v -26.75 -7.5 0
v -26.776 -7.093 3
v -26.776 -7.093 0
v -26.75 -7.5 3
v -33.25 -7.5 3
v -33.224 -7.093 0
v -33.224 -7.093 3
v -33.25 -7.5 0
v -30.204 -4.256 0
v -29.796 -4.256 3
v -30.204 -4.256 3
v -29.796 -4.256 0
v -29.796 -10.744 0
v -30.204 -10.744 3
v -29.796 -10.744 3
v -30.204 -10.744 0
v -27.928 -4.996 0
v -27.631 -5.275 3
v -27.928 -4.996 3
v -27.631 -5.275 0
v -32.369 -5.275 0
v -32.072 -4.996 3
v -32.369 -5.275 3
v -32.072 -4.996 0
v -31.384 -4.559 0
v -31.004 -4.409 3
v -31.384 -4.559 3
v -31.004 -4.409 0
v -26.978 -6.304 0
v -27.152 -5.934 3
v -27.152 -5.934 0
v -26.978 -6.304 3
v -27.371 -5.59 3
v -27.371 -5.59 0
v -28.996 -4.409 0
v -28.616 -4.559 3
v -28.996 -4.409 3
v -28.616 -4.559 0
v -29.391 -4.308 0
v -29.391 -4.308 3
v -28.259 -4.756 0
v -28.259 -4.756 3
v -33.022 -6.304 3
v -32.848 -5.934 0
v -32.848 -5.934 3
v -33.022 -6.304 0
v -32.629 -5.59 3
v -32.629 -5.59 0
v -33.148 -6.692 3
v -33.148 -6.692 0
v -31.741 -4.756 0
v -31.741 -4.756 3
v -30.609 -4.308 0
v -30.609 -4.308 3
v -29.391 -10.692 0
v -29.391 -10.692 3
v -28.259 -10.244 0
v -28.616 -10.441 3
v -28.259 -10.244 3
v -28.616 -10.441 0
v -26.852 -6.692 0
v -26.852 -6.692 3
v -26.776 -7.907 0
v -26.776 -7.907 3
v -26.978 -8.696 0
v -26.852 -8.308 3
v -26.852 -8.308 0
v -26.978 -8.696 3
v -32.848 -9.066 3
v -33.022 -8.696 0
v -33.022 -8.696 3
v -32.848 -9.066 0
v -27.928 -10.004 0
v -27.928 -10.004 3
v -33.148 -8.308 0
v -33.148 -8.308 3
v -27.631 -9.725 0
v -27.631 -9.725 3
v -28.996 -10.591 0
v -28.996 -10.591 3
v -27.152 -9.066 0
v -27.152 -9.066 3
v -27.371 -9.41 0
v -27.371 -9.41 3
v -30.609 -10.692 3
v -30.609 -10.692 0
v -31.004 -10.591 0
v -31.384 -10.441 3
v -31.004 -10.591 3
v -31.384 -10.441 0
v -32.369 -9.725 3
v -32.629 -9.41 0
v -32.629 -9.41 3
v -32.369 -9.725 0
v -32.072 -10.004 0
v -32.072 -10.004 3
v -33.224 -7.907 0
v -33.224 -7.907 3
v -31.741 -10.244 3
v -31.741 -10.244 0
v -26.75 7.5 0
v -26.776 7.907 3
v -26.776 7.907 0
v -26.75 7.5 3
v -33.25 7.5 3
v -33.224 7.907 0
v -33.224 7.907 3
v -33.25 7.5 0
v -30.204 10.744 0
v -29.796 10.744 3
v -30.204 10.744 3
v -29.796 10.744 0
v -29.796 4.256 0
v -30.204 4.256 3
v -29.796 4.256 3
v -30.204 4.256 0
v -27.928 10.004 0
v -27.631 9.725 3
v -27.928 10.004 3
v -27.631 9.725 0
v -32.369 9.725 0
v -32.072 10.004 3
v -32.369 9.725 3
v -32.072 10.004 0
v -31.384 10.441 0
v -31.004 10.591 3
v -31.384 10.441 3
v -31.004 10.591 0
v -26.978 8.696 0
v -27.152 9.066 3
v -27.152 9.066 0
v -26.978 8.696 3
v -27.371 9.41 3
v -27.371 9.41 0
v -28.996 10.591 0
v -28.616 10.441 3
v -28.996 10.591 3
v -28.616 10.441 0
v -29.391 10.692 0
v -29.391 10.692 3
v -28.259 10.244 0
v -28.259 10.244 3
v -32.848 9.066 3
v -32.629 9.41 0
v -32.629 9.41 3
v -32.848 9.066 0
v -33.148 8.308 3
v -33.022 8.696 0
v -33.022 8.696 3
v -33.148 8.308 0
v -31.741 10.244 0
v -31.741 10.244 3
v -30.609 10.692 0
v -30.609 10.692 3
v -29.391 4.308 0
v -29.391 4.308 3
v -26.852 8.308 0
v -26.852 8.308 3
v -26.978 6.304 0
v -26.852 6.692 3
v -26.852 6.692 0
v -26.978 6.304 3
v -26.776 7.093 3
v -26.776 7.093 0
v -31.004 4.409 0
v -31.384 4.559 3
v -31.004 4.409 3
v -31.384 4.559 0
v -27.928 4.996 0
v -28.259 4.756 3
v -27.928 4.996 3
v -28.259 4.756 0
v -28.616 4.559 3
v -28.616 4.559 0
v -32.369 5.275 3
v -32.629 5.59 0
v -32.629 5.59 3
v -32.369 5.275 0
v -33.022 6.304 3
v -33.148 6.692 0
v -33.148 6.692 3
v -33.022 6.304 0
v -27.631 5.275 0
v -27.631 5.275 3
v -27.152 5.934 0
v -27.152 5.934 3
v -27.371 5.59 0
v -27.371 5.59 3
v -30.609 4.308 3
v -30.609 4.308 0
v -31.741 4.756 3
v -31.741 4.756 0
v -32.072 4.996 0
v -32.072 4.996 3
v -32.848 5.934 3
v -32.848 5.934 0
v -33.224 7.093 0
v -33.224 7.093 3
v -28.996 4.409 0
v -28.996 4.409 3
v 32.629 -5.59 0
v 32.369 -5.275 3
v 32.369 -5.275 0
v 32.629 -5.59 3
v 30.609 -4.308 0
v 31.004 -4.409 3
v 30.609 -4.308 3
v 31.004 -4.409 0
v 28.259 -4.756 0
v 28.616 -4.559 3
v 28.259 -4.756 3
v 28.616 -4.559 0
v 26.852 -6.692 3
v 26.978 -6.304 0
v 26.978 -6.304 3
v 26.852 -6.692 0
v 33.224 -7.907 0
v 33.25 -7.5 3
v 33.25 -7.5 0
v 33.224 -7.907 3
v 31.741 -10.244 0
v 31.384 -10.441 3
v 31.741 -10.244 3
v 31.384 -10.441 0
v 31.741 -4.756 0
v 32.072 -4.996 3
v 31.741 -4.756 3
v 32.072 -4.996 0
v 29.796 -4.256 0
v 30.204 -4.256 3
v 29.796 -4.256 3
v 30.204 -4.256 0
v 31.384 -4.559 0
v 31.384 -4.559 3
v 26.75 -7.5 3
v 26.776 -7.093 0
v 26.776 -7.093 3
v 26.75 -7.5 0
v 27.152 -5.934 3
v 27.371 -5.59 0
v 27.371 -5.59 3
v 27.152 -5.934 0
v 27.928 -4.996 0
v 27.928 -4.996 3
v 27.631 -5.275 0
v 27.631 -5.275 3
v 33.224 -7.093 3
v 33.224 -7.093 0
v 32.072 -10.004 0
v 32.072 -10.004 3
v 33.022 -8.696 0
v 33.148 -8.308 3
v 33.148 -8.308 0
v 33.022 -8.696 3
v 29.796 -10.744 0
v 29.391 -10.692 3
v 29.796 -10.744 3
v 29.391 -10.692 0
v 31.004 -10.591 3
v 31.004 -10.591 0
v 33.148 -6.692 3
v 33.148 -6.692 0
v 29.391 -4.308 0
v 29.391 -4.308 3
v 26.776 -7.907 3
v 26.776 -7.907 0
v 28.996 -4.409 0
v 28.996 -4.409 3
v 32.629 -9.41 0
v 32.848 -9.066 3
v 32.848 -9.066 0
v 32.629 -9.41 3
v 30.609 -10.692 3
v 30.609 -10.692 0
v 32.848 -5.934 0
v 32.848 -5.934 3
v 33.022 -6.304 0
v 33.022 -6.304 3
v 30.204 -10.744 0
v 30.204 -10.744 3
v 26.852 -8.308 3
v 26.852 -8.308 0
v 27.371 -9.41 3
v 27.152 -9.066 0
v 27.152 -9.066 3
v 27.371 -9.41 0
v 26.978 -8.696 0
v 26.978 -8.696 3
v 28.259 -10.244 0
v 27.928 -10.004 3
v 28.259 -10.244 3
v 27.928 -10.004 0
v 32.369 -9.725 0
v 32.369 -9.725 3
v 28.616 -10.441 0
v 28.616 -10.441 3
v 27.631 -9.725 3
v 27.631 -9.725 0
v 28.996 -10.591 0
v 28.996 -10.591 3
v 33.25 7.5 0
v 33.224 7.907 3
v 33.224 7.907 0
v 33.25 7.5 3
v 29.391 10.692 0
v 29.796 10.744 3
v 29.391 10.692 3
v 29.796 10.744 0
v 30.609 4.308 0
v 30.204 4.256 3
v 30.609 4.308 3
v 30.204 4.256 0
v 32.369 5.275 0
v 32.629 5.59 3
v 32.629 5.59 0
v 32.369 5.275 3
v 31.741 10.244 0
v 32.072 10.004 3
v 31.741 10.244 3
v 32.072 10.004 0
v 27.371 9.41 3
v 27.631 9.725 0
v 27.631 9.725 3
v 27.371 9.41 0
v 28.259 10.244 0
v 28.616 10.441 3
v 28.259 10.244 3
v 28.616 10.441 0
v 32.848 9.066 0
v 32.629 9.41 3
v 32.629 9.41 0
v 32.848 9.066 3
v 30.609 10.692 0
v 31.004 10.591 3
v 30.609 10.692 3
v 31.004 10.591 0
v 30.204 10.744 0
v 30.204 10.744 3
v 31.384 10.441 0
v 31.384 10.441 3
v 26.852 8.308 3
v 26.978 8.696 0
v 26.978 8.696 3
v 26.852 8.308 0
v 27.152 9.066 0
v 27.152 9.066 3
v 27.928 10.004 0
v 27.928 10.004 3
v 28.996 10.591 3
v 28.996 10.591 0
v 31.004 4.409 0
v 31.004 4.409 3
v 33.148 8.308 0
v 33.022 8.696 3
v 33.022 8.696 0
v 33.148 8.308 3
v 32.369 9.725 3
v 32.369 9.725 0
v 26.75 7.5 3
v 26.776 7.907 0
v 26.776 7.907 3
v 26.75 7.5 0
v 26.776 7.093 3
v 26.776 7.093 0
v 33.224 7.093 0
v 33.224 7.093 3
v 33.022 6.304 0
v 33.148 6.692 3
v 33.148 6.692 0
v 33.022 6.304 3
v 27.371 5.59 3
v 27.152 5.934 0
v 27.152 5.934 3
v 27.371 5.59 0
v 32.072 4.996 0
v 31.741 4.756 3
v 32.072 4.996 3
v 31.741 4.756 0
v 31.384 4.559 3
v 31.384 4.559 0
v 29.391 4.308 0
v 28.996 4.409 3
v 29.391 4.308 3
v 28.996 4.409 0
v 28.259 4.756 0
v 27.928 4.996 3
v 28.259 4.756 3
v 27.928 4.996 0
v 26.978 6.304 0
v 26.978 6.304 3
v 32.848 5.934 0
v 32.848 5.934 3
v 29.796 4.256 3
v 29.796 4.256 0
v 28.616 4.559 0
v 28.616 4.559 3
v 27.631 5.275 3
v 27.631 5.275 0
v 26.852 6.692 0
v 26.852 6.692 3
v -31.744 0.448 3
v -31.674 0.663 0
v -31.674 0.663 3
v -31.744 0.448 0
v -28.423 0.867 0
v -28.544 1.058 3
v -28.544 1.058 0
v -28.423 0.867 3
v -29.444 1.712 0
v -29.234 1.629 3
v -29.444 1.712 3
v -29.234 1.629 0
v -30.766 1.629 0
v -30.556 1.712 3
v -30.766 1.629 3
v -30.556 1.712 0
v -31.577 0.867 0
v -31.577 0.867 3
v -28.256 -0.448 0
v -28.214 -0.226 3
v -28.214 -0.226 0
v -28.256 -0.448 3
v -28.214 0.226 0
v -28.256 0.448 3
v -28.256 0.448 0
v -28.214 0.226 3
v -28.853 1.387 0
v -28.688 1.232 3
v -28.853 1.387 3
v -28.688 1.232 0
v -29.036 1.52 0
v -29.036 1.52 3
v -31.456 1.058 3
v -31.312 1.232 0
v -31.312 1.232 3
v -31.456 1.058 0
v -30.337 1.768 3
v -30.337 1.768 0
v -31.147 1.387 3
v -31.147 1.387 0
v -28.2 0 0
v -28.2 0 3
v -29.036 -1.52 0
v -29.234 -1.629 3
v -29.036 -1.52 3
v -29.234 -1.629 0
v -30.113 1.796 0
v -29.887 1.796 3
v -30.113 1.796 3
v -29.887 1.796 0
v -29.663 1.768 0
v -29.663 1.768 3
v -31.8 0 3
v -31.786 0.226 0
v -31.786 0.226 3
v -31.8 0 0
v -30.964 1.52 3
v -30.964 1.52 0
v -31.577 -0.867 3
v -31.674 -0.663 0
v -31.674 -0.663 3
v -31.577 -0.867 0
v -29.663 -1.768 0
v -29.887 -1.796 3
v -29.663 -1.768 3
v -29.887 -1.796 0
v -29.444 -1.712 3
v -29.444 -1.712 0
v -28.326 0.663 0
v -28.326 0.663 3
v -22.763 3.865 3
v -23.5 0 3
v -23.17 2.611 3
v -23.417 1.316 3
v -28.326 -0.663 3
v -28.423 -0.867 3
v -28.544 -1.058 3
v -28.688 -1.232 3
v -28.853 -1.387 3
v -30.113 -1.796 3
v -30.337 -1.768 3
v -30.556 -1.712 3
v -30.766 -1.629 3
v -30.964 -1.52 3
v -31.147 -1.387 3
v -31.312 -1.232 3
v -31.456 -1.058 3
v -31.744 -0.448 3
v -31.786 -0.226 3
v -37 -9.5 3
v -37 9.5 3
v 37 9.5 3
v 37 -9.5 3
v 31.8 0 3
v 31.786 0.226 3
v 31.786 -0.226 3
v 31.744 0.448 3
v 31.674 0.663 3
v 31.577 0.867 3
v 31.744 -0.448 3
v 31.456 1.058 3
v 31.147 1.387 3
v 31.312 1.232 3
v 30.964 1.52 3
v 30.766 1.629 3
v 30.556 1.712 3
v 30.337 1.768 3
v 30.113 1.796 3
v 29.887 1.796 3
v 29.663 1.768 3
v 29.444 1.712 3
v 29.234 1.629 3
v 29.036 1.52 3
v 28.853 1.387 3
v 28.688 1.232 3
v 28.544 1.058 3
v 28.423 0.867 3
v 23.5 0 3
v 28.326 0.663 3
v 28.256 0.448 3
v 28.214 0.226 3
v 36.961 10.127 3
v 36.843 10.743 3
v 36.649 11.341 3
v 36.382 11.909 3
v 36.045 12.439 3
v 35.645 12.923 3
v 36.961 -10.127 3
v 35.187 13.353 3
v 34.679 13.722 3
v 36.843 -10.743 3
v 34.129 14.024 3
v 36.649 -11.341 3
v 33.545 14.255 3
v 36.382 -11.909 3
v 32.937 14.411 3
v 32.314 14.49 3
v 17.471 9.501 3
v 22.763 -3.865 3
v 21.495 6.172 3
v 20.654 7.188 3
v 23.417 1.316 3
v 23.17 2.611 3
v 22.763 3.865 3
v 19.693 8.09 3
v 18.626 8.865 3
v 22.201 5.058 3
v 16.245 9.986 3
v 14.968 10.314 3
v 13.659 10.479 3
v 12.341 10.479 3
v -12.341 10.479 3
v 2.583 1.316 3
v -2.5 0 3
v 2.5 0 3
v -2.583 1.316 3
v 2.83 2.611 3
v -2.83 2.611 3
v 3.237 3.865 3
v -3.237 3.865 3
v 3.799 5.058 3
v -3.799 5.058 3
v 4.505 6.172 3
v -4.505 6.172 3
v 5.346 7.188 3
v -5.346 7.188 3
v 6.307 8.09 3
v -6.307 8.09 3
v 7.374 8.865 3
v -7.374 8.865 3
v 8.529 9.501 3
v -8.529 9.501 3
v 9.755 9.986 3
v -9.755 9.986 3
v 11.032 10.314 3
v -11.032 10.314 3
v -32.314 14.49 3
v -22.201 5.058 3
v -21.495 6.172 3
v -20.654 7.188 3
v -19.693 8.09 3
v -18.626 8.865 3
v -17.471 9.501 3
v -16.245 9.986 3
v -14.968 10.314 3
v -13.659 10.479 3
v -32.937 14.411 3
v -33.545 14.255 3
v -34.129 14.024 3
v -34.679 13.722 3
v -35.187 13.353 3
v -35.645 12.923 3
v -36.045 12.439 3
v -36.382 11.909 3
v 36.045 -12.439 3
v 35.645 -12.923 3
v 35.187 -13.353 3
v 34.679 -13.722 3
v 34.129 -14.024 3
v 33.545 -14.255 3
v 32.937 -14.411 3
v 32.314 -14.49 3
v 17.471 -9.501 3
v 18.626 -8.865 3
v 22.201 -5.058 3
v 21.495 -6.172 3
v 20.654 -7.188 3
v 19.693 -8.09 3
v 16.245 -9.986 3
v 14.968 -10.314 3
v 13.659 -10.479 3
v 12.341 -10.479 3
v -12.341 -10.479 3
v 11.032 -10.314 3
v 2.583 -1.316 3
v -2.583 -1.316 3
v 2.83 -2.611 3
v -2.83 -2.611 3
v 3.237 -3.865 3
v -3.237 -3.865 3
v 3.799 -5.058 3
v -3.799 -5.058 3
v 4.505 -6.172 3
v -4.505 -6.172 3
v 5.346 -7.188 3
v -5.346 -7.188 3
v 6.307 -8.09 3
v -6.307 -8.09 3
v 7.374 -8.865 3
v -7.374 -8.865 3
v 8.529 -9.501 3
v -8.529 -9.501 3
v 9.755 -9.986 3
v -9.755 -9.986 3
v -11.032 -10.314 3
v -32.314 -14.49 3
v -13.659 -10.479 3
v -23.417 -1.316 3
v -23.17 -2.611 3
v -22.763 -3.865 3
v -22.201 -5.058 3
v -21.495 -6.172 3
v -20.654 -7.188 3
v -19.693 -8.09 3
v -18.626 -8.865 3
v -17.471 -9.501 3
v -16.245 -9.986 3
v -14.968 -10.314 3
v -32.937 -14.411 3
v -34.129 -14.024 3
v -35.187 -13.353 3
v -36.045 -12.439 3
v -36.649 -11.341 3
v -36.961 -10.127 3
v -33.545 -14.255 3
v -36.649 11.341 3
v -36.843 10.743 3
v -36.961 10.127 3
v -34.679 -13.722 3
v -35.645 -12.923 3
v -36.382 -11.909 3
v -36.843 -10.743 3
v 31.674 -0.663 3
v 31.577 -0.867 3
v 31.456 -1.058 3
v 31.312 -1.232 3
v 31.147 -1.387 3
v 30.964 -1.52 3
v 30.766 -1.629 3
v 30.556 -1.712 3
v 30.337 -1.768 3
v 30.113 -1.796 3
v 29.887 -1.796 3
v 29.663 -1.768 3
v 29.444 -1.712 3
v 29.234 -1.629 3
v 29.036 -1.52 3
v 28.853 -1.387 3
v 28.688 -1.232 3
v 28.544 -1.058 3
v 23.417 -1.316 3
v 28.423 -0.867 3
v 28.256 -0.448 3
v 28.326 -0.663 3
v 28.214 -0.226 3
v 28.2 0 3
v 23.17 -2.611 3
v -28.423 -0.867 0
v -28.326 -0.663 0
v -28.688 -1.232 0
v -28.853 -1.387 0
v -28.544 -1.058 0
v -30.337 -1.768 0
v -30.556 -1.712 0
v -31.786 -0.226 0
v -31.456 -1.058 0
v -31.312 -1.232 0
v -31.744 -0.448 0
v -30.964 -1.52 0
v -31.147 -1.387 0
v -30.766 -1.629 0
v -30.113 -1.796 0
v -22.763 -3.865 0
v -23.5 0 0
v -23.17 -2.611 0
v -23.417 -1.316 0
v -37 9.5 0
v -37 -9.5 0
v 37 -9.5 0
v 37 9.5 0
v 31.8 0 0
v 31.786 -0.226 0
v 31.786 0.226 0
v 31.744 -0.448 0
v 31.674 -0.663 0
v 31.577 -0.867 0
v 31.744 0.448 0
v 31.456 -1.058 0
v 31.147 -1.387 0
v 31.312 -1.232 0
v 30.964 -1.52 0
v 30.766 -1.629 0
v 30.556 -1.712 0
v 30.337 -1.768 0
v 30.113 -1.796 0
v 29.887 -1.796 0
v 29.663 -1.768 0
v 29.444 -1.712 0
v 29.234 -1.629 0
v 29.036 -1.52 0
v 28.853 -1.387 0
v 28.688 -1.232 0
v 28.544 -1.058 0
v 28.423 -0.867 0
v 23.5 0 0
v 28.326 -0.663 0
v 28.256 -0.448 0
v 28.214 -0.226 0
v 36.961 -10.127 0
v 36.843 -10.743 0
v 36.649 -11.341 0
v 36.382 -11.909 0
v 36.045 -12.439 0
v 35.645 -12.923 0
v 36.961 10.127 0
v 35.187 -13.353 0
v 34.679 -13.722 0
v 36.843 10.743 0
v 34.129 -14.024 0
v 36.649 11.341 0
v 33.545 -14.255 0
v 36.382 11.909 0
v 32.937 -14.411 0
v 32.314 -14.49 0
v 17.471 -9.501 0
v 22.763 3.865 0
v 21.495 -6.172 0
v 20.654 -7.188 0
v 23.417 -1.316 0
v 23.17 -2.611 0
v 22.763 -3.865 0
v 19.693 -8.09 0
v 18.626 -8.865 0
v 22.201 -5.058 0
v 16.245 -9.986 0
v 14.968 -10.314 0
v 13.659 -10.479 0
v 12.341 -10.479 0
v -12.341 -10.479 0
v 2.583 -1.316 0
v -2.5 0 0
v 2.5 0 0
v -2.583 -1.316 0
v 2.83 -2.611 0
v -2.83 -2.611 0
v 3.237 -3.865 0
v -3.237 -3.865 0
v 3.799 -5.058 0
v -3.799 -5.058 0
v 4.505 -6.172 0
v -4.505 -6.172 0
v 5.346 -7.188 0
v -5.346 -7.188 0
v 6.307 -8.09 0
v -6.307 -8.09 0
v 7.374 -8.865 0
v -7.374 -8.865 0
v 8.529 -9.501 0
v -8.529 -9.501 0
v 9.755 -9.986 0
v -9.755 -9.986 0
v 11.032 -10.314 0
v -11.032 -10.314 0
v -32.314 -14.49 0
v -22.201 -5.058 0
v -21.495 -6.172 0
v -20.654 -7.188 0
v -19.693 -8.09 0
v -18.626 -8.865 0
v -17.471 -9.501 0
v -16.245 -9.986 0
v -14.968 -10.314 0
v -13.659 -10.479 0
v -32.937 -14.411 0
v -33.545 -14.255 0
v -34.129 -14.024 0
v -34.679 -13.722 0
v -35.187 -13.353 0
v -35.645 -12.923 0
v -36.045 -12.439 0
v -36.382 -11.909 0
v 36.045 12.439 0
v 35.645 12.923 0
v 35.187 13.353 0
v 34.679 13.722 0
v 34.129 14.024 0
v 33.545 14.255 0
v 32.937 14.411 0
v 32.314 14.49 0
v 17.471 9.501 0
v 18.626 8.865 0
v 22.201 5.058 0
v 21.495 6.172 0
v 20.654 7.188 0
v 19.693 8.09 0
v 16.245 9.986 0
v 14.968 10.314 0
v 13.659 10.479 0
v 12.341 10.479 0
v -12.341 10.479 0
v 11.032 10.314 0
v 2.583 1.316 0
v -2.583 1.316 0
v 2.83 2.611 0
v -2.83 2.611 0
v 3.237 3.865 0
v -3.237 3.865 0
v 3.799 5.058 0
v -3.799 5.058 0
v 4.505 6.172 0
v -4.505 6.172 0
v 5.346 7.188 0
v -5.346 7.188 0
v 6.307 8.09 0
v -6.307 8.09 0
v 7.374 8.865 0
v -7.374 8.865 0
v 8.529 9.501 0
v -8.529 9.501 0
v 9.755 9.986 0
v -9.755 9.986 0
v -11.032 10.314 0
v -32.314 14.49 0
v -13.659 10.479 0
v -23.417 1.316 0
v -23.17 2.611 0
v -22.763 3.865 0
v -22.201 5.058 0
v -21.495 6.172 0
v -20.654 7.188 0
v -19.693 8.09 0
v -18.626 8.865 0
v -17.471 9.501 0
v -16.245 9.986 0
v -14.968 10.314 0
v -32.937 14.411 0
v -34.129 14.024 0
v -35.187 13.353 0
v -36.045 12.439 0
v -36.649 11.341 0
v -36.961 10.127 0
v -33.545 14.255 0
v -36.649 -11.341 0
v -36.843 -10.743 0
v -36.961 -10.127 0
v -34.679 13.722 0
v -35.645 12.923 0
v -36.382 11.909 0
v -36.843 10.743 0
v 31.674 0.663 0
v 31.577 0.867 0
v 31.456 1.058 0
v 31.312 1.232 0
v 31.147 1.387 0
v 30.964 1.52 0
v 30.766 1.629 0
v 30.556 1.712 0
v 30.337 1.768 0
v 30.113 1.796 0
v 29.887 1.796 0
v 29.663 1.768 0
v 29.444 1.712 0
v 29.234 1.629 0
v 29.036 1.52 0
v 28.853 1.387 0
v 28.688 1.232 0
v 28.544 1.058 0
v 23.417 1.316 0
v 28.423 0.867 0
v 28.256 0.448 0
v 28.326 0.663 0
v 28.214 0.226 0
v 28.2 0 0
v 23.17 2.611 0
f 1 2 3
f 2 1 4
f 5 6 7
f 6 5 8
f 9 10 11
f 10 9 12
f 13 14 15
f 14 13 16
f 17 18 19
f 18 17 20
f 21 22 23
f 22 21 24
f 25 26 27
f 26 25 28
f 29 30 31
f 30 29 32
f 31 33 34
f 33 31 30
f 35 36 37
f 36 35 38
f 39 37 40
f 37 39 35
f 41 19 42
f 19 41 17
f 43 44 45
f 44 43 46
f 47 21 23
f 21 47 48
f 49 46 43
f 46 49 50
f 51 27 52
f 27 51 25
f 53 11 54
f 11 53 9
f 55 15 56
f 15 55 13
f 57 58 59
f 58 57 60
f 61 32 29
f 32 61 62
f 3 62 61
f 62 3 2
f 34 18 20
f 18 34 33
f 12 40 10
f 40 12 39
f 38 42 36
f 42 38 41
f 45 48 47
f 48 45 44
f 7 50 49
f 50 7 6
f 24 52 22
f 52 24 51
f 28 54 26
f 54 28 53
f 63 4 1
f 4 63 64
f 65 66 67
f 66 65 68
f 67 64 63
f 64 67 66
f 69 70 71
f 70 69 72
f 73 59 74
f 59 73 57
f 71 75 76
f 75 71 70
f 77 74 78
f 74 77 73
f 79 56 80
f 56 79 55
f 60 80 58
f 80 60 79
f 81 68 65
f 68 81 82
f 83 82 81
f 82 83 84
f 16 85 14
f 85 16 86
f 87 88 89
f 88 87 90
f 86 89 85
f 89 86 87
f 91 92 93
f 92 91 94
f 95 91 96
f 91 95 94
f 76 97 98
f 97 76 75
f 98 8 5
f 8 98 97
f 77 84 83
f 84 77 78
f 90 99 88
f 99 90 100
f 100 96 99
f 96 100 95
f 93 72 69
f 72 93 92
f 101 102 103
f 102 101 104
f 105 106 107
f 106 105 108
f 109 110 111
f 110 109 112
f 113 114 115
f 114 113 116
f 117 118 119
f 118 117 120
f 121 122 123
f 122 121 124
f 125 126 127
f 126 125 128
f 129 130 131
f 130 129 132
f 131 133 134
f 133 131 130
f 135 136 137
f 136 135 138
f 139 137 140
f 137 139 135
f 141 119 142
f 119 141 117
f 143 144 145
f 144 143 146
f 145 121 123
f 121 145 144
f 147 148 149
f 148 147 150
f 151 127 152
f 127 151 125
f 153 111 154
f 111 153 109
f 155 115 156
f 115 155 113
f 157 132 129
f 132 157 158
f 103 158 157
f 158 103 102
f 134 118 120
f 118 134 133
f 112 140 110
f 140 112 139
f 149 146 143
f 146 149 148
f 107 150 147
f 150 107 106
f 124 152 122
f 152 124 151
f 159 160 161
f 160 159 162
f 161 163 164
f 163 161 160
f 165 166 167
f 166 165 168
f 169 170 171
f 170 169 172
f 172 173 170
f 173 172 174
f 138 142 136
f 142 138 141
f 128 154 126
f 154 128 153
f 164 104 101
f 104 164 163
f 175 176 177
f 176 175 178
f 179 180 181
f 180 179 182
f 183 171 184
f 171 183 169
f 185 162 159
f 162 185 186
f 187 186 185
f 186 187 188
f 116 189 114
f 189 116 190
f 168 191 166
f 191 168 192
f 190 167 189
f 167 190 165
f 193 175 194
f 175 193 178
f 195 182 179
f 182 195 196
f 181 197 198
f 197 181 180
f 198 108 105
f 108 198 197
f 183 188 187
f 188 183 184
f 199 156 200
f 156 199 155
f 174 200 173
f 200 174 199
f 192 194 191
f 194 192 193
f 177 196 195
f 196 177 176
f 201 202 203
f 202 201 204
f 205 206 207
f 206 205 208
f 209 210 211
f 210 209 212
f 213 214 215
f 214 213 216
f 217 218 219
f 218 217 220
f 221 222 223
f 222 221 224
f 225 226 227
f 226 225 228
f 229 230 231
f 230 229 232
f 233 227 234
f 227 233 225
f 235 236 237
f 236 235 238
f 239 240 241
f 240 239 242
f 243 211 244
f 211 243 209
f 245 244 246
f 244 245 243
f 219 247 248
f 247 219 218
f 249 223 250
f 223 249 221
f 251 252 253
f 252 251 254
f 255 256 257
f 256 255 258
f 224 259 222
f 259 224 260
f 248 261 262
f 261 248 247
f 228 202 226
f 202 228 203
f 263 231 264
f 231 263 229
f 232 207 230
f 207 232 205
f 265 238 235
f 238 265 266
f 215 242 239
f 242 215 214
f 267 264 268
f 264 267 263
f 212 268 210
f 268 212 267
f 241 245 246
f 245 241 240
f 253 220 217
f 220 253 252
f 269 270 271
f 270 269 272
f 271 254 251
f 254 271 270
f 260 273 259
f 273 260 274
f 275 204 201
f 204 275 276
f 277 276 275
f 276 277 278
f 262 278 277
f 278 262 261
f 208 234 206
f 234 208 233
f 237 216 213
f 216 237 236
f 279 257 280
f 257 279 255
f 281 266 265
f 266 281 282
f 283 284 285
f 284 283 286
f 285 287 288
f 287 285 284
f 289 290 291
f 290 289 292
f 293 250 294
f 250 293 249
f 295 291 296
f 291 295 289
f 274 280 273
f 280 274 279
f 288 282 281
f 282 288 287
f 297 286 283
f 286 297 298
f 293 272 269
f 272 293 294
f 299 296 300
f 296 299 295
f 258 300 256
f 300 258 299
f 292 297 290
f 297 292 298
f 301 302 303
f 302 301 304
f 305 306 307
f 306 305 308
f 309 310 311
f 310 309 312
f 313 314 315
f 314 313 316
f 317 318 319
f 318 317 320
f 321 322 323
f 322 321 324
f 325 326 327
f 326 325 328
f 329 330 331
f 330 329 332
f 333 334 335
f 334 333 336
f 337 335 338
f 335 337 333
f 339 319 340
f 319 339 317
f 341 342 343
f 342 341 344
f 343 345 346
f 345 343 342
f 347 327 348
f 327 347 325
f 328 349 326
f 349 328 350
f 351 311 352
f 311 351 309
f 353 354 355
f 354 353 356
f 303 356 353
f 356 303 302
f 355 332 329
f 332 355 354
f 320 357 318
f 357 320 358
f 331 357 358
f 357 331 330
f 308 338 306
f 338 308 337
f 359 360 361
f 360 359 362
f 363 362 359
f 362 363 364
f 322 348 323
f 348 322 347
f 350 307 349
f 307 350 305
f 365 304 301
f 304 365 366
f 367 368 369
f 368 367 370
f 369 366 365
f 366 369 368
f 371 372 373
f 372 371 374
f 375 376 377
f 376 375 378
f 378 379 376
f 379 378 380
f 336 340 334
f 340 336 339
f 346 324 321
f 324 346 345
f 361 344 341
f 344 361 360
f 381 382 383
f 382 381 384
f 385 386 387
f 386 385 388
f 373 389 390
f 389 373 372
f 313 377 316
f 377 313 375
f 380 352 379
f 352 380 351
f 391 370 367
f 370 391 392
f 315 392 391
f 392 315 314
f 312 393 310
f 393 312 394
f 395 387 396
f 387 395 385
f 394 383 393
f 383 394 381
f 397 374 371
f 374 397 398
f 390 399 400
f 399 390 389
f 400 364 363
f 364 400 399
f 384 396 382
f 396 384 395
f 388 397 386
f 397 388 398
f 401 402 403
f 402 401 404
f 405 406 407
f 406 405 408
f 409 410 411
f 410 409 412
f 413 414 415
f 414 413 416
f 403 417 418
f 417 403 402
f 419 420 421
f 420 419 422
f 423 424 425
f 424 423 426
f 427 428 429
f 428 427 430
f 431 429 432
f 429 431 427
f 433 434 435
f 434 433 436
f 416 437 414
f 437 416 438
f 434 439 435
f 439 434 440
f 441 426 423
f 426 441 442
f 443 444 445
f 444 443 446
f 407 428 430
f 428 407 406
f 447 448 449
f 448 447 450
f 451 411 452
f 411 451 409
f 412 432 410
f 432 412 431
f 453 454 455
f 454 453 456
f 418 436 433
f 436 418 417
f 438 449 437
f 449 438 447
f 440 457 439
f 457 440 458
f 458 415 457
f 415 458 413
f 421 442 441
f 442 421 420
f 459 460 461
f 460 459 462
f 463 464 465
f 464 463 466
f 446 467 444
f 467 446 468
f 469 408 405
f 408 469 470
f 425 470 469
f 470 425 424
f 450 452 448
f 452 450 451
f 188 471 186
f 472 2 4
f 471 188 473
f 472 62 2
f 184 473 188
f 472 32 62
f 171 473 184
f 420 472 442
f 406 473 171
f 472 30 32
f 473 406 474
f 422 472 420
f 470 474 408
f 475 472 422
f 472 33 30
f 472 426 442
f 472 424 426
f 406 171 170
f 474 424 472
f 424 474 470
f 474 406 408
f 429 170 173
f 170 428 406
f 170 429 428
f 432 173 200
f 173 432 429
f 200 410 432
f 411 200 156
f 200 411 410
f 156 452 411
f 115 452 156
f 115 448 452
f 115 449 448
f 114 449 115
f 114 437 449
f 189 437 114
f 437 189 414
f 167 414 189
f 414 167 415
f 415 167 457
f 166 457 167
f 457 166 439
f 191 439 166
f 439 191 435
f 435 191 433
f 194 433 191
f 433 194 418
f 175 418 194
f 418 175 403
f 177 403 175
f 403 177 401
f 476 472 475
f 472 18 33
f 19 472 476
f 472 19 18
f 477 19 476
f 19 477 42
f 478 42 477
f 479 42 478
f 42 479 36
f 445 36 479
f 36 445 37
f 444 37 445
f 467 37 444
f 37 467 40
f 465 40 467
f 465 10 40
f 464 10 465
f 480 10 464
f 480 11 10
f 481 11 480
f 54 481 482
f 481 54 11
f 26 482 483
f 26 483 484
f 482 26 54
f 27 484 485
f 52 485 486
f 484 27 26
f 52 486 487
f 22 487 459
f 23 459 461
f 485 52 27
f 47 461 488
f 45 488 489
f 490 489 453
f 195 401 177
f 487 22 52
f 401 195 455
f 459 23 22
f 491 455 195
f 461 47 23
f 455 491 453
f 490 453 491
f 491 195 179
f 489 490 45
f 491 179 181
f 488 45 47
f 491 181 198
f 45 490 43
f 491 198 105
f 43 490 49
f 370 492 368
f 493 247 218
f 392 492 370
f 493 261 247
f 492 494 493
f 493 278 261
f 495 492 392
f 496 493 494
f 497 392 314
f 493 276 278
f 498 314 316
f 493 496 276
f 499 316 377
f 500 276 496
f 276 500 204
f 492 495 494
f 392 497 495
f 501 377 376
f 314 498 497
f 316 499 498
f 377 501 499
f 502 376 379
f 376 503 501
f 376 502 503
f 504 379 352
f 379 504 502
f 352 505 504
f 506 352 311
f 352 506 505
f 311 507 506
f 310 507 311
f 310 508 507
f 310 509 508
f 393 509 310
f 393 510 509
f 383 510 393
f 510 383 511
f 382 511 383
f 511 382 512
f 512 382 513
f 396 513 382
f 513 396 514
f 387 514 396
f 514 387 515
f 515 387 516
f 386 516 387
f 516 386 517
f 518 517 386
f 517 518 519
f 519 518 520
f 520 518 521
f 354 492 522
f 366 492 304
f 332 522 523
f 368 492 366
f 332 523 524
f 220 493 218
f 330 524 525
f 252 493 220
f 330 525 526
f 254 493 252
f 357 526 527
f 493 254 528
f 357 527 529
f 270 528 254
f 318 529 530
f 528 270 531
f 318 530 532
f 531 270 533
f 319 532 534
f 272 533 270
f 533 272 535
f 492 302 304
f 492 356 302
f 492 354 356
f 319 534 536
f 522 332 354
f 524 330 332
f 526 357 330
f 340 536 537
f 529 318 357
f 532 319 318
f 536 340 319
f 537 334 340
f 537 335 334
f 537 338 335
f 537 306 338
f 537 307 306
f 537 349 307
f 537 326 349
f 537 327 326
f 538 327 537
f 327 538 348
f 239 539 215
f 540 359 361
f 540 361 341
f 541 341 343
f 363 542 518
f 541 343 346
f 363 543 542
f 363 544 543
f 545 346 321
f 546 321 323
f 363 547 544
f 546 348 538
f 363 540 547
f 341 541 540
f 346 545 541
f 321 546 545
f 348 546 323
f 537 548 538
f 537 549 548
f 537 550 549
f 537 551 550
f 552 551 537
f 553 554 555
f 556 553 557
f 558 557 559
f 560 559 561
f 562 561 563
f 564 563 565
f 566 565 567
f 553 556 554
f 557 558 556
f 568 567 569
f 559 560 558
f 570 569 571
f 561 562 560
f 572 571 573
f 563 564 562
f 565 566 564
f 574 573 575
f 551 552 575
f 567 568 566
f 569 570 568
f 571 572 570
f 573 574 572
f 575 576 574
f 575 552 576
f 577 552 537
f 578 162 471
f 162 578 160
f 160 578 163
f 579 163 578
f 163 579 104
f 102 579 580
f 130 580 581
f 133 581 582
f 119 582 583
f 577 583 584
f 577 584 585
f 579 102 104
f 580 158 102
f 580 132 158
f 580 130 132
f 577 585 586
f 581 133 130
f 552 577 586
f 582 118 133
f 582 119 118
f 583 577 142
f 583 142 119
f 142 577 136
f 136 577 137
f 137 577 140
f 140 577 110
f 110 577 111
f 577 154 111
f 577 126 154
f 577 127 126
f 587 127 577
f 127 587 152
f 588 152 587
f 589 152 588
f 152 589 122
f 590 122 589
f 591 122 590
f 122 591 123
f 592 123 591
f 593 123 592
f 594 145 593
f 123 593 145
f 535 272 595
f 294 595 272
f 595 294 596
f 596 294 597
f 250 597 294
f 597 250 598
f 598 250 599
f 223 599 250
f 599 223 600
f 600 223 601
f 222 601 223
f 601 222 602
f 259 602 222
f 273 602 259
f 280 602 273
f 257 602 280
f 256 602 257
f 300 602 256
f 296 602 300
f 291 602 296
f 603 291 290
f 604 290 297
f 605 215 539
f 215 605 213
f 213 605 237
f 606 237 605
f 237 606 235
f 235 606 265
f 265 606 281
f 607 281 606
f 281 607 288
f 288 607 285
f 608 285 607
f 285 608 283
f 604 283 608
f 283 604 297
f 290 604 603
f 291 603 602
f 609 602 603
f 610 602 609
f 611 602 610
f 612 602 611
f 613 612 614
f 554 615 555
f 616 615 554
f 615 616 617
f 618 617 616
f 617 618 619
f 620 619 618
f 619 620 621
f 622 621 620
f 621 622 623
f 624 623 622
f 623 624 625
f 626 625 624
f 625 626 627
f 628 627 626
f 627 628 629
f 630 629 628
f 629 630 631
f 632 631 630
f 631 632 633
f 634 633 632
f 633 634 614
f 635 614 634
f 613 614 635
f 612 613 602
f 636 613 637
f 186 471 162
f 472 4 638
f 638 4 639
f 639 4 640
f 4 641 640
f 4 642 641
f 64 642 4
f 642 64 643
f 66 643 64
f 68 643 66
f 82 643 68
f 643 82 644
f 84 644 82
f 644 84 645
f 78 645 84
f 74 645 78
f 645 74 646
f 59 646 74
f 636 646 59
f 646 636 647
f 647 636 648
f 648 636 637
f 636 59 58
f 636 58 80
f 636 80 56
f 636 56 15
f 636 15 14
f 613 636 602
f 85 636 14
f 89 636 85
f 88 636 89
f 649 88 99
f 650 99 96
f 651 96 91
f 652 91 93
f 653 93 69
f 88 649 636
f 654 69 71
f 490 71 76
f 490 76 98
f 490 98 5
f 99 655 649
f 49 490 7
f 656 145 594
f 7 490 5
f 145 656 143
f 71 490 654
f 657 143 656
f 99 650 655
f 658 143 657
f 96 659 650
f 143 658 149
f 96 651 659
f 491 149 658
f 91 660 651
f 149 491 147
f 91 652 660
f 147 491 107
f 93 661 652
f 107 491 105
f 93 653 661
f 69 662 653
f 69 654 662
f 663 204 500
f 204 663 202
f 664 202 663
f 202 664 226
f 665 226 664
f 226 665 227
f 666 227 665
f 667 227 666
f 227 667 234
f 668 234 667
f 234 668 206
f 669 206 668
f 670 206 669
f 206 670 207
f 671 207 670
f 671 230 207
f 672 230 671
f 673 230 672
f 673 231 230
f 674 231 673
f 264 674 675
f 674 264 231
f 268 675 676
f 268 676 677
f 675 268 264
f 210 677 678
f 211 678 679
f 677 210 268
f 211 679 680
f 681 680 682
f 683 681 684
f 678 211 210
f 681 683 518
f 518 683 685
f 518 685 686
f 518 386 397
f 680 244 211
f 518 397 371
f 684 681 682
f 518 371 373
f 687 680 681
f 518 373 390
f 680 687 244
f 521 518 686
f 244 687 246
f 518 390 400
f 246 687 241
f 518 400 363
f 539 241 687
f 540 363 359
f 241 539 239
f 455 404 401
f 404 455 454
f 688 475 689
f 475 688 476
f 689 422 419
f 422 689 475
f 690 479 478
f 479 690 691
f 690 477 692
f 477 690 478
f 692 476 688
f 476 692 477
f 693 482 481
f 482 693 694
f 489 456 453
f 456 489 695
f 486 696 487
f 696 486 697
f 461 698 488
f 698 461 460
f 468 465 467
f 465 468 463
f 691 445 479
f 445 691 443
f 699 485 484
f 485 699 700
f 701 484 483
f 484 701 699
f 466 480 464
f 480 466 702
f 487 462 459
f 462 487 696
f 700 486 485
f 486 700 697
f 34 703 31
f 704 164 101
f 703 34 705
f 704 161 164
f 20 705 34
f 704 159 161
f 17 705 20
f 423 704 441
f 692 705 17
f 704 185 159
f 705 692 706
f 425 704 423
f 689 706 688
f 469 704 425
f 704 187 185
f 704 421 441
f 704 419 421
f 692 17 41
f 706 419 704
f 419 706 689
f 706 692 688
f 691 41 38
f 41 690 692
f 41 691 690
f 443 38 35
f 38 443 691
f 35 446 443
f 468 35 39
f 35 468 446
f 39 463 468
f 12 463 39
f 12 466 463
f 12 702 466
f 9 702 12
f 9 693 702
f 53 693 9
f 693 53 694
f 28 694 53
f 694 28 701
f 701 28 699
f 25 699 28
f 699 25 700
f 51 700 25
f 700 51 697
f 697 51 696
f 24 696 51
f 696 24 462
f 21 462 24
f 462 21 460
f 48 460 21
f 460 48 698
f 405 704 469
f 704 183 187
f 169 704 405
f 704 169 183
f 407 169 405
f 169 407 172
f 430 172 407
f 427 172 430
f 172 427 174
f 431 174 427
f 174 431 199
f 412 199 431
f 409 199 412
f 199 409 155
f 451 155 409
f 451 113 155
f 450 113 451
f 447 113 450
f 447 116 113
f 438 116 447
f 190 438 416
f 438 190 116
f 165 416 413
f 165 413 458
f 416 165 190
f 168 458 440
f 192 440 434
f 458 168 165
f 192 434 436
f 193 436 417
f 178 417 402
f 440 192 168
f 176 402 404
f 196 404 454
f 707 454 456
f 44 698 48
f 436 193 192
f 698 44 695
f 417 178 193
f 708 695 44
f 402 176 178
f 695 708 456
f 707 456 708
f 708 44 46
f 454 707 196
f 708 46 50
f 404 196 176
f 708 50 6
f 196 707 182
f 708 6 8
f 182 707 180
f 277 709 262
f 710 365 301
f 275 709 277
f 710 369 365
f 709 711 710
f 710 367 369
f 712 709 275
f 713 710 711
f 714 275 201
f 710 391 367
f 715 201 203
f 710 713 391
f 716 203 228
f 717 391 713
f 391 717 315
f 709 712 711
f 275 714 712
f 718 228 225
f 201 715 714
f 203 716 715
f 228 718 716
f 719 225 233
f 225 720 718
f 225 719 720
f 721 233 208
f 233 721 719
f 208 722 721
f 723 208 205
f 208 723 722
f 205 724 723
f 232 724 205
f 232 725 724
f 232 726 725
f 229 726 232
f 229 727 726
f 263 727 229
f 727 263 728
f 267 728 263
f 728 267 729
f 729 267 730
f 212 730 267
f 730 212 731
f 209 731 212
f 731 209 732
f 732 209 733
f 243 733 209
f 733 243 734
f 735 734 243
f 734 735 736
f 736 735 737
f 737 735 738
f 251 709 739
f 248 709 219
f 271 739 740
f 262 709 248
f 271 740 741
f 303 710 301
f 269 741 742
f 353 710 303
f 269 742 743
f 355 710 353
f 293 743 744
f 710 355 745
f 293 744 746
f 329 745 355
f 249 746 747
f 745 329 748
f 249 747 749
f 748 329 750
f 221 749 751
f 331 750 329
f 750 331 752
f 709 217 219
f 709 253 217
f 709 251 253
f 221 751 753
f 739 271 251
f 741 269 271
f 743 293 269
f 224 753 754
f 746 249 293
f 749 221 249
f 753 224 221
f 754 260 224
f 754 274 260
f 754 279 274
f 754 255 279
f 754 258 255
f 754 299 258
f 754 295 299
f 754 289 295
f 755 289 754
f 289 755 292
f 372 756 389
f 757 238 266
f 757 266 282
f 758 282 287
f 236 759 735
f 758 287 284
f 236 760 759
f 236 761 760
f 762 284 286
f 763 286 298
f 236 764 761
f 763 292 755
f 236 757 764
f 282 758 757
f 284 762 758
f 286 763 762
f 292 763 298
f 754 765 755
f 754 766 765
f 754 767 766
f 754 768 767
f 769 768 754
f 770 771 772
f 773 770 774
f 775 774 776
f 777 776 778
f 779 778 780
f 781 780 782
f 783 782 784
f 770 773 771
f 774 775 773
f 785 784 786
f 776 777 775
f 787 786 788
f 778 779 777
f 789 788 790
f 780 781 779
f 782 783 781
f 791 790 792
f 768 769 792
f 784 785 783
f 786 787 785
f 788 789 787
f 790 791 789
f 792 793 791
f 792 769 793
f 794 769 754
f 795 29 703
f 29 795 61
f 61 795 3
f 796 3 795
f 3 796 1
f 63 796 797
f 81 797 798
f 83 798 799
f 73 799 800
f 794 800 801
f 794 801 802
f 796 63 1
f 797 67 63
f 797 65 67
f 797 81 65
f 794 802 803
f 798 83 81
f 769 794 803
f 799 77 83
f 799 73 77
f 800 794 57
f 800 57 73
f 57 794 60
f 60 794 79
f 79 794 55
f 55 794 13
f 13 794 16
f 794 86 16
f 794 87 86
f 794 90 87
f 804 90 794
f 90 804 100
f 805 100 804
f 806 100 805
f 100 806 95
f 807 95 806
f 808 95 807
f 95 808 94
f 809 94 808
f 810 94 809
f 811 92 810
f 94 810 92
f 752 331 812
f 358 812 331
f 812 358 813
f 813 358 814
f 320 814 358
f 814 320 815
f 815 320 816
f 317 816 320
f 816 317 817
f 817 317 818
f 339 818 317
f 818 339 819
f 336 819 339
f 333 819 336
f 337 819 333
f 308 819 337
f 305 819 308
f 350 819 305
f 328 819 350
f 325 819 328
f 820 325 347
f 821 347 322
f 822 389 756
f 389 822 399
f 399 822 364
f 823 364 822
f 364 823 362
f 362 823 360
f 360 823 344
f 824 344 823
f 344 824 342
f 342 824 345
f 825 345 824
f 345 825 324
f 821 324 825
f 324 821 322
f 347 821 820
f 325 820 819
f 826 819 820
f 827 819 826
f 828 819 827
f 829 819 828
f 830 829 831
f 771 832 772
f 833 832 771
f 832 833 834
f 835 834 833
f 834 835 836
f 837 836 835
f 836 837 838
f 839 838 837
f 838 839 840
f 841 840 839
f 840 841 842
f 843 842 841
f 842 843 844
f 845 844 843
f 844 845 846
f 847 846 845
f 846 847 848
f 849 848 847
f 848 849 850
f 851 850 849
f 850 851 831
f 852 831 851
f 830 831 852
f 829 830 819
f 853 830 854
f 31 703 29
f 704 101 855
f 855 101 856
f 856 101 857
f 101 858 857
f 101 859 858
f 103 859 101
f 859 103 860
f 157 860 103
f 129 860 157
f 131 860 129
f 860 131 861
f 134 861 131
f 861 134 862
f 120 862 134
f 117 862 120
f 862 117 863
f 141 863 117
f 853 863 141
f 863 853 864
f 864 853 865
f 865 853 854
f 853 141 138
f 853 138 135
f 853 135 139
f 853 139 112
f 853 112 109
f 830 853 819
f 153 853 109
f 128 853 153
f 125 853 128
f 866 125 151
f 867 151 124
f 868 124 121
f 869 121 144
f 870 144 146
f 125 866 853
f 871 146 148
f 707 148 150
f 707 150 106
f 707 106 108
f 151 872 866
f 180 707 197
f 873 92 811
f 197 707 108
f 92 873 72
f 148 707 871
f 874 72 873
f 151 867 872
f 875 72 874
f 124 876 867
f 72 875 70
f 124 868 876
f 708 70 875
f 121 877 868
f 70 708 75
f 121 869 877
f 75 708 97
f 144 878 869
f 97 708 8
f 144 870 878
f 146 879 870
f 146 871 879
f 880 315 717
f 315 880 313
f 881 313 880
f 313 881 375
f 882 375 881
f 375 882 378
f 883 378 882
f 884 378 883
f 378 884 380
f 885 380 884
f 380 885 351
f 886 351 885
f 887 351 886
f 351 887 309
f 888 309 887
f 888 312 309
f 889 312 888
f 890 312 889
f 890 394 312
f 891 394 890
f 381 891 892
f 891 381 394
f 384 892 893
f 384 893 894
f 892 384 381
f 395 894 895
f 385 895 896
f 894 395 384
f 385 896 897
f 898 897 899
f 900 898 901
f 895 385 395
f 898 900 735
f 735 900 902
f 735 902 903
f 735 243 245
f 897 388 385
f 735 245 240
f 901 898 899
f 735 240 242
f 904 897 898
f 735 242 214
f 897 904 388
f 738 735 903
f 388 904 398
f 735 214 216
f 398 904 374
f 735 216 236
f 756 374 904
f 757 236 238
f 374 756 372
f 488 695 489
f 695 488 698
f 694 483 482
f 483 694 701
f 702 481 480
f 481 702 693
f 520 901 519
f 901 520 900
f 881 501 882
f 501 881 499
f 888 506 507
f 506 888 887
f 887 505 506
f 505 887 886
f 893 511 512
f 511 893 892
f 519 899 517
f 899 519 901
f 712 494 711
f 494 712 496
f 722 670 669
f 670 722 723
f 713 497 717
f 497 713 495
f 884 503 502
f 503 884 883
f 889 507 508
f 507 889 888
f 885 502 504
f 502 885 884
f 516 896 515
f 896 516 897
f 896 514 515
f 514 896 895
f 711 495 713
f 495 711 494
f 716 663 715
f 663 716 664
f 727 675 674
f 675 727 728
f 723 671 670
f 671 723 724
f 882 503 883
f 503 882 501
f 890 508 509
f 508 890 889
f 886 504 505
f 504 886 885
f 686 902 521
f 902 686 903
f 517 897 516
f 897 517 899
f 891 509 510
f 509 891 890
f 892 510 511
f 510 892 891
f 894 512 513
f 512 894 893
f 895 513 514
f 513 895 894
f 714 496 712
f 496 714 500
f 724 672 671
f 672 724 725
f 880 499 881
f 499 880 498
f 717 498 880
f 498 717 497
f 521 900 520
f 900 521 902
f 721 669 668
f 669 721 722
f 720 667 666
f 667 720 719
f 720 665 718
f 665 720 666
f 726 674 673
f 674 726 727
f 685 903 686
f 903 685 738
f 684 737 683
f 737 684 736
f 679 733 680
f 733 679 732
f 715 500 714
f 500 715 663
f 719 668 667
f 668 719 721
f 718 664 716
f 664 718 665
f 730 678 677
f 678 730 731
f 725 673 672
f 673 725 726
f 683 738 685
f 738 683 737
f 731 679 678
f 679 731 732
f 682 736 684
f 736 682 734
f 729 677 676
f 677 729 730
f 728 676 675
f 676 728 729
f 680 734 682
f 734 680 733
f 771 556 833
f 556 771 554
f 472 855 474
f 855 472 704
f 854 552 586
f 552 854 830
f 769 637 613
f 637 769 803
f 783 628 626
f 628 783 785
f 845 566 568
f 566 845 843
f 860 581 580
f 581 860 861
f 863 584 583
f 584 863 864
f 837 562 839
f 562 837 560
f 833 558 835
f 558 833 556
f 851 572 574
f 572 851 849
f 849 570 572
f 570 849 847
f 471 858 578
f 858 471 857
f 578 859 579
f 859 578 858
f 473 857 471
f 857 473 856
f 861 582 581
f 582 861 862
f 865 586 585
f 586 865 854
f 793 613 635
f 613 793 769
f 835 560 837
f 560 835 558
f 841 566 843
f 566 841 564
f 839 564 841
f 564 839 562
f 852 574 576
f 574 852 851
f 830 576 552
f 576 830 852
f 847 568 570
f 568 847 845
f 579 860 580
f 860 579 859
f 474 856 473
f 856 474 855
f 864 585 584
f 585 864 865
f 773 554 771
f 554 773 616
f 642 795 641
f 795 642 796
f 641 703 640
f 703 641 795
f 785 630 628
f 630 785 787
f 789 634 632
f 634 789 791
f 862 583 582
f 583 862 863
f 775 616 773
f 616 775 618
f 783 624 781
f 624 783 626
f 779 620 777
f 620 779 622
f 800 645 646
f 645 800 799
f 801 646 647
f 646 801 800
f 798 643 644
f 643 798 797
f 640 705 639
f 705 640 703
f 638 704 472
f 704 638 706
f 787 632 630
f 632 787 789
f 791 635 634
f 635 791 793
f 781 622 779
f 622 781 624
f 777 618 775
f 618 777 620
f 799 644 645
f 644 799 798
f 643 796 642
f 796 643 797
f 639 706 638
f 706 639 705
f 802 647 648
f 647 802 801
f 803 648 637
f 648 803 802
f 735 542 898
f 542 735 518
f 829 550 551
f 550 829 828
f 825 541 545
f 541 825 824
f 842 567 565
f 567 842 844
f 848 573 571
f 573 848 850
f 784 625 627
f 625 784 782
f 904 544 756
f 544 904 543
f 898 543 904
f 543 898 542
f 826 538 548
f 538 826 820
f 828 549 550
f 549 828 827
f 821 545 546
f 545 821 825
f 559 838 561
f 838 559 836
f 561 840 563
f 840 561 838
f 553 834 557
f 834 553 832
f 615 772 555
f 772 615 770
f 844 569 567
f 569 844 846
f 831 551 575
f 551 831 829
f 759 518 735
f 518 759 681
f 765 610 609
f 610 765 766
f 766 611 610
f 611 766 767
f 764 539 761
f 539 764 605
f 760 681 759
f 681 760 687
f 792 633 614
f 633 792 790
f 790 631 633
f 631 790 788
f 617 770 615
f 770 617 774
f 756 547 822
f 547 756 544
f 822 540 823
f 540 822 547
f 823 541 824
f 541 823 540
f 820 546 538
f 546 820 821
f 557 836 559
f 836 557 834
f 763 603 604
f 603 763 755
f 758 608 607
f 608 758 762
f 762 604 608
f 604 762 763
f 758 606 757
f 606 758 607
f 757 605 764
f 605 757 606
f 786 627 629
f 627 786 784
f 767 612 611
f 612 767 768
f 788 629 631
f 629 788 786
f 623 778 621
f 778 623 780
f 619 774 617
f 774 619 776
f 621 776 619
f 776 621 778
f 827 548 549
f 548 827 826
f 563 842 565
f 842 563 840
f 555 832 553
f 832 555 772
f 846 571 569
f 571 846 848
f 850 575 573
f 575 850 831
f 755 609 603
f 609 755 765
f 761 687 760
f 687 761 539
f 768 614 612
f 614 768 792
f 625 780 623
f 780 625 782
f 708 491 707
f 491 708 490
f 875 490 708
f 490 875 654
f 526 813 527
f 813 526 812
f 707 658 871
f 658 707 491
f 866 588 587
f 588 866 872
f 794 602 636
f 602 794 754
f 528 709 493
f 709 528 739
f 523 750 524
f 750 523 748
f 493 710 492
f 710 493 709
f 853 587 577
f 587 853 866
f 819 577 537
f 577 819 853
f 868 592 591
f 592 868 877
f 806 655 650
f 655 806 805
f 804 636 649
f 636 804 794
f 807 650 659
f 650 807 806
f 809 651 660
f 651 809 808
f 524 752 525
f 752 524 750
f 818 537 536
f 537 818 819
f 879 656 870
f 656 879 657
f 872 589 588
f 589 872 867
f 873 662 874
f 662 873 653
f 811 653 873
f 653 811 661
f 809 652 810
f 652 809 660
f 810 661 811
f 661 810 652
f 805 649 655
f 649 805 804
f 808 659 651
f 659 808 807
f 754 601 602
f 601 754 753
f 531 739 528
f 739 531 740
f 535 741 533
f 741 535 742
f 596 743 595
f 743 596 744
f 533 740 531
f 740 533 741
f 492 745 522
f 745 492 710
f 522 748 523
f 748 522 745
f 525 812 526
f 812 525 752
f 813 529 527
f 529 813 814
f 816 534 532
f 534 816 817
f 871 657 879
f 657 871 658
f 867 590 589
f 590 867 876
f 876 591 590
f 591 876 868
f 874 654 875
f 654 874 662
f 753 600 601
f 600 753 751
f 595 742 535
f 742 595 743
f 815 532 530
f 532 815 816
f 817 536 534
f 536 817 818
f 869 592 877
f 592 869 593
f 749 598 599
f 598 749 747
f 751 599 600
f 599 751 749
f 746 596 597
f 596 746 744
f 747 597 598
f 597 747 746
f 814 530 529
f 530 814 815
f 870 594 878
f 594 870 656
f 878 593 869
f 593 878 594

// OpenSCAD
$fn = 50;


difference() {
	union() {
		hull() {
			translate(v = [-32.0000000000, 9.5000000000, 0]) {
				cylinder(h = 3, r = 5);
			}
			translate(v = [32.0000000000, 9.5000000000, 0]) {
				cylinder(h = 3, r = 5);
			}
			translate(v = [-32.0000000000, -9.5000000000, 0]) {
				cylinder(h = 3, r = 5);
			}
			translate(v = [32.0000000000, -9.5000000000, 0]) {
				cylinder(h = 3, r = 5);
			}
		}
	}
	union() {
		#translate(v = [-30.0000000000, -7.5000000000, 0]) {
			cylinder(h = 3, r = 3.2500000000);
		}
		#translate(v = [-30.0000000000, 7.5000000000, 0]) {
			cylinder(h = 3, r = 3.2500000000);
		}
		#translate(v = [30.0000000000, -7.5000000000, 0]) {
			cylinder(h = 3, r = 3.2500000000);
		}
		#translate(v = [30.0000000000, 7.5000000000, 0]) {
			cylinder(h = 3, r = 3.2500000000);
		}
		#translate(v = [-30.0000000000, -7.5000000000, -100.0000000000]) {
			cylinder(h = 200, r = 3.2500000000);
		}
		#translate(v = [-30.0000000000, 7.5000000000, -100.0000000000]) {
			cylinder(h = 200, r = 3.2500000000);
		}
		#translate(v = [30.0000000000, -7.5000000000, -100.0000000000]) {
			cylinder(h = 200, r = 3.2500000000);
		}
		#translate(v = [30.0000000000, 7.5000000000, -100.0000000000]) {
			cylinder(h = 200, r = 3.2500000000);
		}
		#translate(v = [-30.0000000000, -7.5000000000, 0]) {
			cylinder(h = 3, r = 1.8000000000);
		}
		#translate(v = [-30.0000000000, 0.0000000000, 0]) {
			cylinder(h = 3, r = 1.8000000000);
		}
		#translate(v = [-30.0000000000, 7.5000000000, 0]) {
			cylinder(h = 3, r = 1.8000000000);
		}
		#translate(v = [30.0000000000, -7.5000000000, 0]) {
			cylinder(h = 3, r = 1.8000000000);
		}
		#translate(v = [30.0000000000, 0.0000000000, 0]) {
			cylinder(h = 3, r = 1.8000000000);
		}
		#translate(v = [30.0000000000, 7.5000000000, 0]) {
			cylinder(h = 3, r = 1.8000000000);
		}
		#translate(v = [-30.0000000000, -7.5000000000, 0]) {
			cylinder(h = 3, r = 1.8000000000);
		}
		#translate(v = [-30.0000000000, 0.0000000000, 0]) {
			cylinder(h = 3, r = 1.8000000000);
		}
		#translate(v = [-30.0000000000, 7.5000000000, 0]) {
			cylinder(h = 3, r = 1.8000000000);
		}
		#translate(v = [30.0000000000, -7.5000000000, 0]) {
			cylinder(h = 3, r = 1.8000000000);
		}
		#translate(v = [30.0000000000, 0.0000000000, 0]) {
			cylinder(h = 3, r = 1.8000000000);
		}
		#translate(v = [30.0000000000, 7.5000000000, 0]) {
			cylinder(h = 3, r = 1.8000000000);
		}
		#translate(v = [-30.0000000000, -7.5000000000, 0]) {
			cylinder(h = 3, r = 1.8000000000);
		}
		#translate(v = [-30.0000000000, 0.0000000000, 0]) {
			cylinder(h = 3, r = 1.8000000000);
		}
		#translate(v = [-30.0000000000, 7.5000000000, 0]) {
			cylinder(h = 3, r = 1.8000000000);
		}
		#translate(v = [30.0000000000, -7.5000000000, 0]) {
			cylinder(h = 3, r = 1.8000000000);
		}
		#translate(v = [30.0000000000, 0.0000000000, 0]) {
			cylinder(h = 3, r = 1.8000000000);
		}
		#translate(v = [30.0000000000, 7.5000000000, 0]) {
			cylinder(h = 3, r = 1.8000000000);
		}
		#translate(v = [-13.0000000000, 0, 0]) {
			cylinder(h = 3, r = 10.5000000000);
		}
		#translate(v = [13.0000000000, 0, 0]) {
			cylinder(h = 3, r = 10.5000000000);
		}
	}
}
